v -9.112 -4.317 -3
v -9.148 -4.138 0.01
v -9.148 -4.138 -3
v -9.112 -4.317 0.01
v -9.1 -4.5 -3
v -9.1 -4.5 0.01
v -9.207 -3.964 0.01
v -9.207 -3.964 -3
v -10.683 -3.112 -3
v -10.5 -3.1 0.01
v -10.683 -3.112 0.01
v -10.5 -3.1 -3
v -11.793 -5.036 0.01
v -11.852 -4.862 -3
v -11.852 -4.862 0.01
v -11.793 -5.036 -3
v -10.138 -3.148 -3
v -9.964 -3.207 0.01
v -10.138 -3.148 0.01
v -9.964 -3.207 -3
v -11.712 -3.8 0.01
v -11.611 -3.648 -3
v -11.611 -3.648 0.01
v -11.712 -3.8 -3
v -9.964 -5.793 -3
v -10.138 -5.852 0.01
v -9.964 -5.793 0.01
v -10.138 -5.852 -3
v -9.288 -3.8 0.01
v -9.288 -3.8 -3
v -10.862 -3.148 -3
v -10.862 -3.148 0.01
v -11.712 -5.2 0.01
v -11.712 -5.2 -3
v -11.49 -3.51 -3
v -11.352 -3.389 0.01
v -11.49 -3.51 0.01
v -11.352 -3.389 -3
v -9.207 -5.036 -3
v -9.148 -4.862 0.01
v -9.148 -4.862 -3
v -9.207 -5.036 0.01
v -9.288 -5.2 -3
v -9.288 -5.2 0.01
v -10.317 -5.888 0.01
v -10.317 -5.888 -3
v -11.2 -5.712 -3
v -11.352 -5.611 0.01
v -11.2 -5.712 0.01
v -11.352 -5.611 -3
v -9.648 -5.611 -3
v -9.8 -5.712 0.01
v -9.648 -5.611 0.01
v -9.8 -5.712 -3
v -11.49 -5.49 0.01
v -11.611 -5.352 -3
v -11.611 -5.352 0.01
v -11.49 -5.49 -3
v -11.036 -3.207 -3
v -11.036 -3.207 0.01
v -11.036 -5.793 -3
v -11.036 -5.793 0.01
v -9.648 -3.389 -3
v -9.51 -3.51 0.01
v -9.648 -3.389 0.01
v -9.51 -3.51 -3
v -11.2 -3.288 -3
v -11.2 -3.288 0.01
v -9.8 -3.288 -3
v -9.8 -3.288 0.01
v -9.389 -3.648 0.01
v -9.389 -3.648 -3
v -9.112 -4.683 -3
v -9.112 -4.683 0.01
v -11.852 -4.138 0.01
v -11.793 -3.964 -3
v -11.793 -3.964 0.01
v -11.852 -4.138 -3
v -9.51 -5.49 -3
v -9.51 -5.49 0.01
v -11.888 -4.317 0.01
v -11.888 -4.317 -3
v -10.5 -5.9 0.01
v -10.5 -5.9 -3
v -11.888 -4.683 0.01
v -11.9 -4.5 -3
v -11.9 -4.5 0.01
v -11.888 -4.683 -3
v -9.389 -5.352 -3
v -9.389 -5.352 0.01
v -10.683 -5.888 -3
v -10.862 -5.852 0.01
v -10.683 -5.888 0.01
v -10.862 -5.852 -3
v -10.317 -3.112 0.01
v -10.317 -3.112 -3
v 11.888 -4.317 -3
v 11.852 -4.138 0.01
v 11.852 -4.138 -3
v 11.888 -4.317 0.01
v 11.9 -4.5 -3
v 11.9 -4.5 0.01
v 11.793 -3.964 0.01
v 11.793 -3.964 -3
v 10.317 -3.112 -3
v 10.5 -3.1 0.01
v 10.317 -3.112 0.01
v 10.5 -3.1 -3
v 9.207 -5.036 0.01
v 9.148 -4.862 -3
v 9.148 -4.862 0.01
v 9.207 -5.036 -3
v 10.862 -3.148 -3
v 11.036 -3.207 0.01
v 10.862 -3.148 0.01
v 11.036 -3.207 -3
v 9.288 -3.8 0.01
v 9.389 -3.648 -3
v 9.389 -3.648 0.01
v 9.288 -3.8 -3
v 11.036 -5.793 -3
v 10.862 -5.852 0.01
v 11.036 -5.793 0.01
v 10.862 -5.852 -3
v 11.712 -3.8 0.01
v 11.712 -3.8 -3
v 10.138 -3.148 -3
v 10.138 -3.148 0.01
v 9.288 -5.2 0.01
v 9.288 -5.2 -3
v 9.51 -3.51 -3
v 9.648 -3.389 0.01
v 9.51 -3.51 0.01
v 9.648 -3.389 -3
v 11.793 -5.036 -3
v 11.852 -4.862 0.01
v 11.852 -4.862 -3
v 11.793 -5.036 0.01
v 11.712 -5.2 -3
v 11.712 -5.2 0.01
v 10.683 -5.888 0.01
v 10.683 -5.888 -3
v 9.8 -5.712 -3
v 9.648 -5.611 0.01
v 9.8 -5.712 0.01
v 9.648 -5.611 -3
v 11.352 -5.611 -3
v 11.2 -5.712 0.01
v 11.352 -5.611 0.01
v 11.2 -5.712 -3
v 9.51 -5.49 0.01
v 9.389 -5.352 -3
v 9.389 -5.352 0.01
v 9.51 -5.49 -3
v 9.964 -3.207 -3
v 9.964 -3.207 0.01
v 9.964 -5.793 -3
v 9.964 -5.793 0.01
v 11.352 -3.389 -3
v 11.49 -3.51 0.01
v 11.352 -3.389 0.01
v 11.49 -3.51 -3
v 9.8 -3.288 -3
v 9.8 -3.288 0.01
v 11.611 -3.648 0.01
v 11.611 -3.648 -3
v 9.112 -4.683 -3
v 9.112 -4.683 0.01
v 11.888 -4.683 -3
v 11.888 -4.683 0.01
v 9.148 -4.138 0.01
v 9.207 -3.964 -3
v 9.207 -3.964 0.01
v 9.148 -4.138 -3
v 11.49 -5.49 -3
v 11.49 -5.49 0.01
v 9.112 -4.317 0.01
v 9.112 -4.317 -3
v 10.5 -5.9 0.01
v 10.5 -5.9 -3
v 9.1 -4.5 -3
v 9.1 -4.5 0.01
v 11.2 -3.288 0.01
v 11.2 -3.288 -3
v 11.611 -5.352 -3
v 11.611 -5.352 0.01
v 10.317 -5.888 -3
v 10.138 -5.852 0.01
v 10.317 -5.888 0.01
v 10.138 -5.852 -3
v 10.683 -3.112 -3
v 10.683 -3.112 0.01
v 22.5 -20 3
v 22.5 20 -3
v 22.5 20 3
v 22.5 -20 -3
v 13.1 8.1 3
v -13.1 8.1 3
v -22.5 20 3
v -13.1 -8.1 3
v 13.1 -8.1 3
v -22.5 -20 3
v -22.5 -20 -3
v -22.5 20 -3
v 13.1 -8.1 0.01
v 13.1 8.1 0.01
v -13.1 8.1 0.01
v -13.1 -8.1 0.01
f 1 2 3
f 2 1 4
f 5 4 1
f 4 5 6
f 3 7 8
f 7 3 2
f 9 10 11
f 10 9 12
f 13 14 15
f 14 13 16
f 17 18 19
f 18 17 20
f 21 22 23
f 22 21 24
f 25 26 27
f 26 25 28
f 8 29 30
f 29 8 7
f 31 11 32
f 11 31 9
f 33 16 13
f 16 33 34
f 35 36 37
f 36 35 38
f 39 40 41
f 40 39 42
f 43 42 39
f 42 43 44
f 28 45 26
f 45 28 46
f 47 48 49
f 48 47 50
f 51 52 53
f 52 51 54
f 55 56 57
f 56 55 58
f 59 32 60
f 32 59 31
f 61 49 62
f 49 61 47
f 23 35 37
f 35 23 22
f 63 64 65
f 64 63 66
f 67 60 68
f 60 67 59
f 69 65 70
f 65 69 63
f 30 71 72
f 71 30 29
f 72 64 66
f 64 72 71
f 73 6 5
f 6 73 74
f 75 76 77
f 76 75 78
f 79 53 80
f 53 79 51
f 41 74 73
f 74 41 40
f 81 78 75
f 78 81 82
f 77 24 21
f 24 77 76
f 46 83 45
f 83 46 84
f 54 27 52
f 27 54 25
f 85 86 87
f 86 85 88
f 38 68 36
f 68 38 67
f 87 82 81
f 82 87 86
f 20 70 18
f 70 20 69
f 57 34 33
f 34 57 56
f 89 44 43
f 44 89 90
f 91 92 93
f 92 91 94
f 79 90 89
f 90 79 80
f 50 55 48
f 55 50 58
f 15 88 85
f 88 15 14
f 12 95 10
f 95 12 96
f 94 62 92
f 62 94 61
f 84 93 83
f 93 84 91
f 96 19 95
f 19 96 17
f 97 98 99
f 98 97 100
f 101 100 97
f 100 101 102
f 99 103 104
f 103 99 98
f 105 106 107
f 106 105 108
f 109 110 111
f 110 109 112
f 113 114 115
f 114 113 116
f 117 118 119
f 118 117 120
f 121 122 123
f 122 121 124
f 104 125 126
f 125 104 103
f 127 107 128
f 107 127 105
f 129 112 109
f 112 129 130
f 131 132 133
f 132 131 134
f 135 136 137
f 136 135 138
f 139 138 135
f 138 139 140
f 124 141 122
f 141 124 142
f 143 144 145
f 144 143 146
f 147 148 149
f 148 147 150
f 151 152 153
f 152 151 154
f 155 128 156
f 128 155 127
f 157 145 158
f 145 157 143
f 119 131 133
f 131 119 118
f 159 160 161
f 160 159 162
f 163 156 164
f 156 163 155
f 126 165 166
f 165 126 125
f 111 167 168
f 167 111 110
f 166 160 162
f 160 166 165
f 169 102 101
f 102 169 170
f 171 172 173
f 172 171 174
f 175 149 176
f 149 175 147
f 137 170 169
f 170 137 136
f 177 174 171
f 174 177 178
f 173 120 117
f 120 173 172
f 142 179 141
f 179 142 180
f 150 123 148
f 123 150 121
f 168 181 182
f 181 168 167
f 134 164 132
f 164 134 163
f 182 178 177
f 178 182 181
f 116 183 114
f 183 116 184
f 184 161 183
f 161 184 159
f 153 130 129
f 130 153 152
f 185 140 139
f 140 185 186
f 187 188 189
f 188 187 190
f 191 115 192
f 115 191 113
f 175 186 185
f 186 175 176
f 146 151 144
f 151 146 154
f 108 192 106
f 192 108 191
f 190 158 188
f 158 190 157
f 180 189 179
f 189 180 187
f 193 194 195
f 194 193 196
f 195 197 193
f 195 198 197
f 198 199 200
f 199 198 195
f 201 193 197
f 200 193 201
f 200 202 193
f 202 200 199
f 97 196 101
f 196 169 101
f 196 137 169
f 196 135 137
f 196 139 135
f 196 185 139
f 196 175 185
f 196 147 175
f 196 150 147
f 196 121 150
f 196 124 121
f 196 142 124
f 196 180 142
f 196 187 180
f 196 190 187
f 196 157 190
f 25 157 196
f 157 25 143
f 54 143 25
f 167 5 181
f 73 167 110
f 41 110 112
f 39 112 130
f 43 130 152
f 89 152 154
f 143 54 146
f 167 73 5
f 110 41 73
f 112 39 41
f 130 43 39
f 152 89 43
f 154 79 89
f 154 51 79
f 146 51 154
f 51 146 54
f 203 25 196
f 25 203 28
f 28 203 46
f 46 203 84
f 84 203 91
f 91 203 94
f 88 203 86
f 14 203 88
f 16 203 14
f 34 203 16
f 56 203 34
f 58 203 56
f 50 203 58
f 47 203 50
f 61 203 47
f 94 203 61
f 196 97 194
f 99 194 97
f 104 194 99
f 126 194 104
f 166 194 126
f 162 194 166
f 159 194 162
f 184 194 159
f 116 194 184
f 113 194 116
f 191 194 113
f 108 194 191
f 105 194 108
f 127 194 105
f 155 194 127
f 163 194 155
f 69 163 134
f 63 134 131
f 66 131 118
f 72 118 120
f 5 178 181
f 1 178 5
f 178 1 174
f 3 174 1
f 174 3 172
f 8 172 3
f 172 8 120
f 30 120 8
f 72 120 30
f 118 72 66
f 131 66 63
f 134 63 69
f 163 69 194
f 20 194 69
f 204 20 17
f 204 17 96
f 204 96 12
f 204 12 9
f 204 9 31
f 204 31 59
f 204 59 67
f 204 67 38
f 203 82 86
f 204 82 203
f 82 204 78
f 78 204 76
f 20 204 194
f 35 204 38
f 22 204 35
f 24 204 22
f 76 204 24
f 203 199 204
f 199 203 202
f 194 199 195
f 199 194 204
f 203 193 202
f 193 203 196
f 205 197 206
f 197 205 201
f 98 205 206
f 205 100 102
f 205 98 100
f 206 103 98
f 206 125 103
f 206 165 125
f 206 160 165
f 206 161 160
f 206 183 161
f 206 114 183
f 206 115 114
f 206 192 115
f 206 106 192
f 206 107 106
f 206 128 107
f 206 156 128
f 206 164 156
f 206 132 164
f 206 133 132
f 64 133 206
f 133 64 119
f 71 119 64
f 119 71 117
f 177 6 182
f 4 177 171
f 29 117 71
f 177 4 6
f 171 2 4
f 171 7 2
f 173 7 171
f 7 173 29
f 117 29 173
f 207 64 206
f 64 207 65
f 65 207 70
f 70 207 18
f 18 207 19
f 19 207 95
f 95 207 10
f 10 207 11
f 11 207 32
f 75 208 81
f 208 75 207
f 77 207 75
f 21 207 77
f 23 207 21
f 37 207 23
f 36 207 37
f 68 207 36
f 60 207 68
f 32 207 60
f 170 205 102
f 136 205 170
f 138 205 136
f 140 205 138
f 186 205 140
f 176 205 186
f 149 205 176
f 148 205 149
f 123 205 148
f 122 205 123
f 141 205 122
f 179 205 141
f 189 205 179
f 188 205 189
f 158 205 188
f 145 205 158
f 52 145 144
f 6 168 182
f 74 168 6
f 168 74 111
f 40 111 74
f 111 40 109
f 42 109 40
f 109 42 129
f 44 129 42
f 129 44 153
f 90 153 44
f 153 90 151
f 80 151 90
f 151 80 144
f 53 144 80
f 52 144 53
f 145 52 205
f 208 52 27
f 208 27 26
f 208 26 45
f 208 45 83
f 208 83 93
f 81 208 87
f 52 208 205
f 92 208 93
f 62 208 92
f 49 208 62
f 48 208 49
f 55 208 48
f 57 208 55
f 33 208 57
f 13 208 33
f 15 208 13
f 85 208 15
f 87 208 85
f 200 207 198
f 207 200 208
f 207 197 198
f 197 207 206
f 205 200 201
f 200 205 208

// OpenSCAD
// fit_test.scad
// Fit test for an MPU-9250/6500/9255 breakout (GY-9250 style board).
// Both mounting holes sit along one edge, near the two ends.

// ===== MEASURE THESE ON YOUR OWN BOARD =====
board_x   = 25.0;    // long edge
board_y   = 15.0;    // short edge
hole_dx   = 10.5;    // hole centre, distance from board centre along X
hole_dy   = 4.5;     // hole centre, distance from board centre along Y
                     // negative side; both holes share this offset
// ===========================================

fit       = 0.6;     // clearance around the board, per side
hole_dia  = 2.8;     // M3 self-taps into PLA
plate_x   = 45;
plate_y   = 40;
plate_z   = 6;
pocket_z  = 3;

$fn = 48;

difference() {
    cube([plate_x, plate_y, plate_z], center = true);

    // pocket matching the board outline
    translate([0, 0, plate_z/2 - pocket_z/2 + 0.01])
        cube([board_x + 2*fit, board_y + 2*fit, pocket_z], center = true);

    // two holes along the same edge
    for (s = [-1, 1])
        translate([s * hole_dx, -hole_dy, 0])
            cylinder(h = plate_z * 2, d = hole_dia, center = true);
}
